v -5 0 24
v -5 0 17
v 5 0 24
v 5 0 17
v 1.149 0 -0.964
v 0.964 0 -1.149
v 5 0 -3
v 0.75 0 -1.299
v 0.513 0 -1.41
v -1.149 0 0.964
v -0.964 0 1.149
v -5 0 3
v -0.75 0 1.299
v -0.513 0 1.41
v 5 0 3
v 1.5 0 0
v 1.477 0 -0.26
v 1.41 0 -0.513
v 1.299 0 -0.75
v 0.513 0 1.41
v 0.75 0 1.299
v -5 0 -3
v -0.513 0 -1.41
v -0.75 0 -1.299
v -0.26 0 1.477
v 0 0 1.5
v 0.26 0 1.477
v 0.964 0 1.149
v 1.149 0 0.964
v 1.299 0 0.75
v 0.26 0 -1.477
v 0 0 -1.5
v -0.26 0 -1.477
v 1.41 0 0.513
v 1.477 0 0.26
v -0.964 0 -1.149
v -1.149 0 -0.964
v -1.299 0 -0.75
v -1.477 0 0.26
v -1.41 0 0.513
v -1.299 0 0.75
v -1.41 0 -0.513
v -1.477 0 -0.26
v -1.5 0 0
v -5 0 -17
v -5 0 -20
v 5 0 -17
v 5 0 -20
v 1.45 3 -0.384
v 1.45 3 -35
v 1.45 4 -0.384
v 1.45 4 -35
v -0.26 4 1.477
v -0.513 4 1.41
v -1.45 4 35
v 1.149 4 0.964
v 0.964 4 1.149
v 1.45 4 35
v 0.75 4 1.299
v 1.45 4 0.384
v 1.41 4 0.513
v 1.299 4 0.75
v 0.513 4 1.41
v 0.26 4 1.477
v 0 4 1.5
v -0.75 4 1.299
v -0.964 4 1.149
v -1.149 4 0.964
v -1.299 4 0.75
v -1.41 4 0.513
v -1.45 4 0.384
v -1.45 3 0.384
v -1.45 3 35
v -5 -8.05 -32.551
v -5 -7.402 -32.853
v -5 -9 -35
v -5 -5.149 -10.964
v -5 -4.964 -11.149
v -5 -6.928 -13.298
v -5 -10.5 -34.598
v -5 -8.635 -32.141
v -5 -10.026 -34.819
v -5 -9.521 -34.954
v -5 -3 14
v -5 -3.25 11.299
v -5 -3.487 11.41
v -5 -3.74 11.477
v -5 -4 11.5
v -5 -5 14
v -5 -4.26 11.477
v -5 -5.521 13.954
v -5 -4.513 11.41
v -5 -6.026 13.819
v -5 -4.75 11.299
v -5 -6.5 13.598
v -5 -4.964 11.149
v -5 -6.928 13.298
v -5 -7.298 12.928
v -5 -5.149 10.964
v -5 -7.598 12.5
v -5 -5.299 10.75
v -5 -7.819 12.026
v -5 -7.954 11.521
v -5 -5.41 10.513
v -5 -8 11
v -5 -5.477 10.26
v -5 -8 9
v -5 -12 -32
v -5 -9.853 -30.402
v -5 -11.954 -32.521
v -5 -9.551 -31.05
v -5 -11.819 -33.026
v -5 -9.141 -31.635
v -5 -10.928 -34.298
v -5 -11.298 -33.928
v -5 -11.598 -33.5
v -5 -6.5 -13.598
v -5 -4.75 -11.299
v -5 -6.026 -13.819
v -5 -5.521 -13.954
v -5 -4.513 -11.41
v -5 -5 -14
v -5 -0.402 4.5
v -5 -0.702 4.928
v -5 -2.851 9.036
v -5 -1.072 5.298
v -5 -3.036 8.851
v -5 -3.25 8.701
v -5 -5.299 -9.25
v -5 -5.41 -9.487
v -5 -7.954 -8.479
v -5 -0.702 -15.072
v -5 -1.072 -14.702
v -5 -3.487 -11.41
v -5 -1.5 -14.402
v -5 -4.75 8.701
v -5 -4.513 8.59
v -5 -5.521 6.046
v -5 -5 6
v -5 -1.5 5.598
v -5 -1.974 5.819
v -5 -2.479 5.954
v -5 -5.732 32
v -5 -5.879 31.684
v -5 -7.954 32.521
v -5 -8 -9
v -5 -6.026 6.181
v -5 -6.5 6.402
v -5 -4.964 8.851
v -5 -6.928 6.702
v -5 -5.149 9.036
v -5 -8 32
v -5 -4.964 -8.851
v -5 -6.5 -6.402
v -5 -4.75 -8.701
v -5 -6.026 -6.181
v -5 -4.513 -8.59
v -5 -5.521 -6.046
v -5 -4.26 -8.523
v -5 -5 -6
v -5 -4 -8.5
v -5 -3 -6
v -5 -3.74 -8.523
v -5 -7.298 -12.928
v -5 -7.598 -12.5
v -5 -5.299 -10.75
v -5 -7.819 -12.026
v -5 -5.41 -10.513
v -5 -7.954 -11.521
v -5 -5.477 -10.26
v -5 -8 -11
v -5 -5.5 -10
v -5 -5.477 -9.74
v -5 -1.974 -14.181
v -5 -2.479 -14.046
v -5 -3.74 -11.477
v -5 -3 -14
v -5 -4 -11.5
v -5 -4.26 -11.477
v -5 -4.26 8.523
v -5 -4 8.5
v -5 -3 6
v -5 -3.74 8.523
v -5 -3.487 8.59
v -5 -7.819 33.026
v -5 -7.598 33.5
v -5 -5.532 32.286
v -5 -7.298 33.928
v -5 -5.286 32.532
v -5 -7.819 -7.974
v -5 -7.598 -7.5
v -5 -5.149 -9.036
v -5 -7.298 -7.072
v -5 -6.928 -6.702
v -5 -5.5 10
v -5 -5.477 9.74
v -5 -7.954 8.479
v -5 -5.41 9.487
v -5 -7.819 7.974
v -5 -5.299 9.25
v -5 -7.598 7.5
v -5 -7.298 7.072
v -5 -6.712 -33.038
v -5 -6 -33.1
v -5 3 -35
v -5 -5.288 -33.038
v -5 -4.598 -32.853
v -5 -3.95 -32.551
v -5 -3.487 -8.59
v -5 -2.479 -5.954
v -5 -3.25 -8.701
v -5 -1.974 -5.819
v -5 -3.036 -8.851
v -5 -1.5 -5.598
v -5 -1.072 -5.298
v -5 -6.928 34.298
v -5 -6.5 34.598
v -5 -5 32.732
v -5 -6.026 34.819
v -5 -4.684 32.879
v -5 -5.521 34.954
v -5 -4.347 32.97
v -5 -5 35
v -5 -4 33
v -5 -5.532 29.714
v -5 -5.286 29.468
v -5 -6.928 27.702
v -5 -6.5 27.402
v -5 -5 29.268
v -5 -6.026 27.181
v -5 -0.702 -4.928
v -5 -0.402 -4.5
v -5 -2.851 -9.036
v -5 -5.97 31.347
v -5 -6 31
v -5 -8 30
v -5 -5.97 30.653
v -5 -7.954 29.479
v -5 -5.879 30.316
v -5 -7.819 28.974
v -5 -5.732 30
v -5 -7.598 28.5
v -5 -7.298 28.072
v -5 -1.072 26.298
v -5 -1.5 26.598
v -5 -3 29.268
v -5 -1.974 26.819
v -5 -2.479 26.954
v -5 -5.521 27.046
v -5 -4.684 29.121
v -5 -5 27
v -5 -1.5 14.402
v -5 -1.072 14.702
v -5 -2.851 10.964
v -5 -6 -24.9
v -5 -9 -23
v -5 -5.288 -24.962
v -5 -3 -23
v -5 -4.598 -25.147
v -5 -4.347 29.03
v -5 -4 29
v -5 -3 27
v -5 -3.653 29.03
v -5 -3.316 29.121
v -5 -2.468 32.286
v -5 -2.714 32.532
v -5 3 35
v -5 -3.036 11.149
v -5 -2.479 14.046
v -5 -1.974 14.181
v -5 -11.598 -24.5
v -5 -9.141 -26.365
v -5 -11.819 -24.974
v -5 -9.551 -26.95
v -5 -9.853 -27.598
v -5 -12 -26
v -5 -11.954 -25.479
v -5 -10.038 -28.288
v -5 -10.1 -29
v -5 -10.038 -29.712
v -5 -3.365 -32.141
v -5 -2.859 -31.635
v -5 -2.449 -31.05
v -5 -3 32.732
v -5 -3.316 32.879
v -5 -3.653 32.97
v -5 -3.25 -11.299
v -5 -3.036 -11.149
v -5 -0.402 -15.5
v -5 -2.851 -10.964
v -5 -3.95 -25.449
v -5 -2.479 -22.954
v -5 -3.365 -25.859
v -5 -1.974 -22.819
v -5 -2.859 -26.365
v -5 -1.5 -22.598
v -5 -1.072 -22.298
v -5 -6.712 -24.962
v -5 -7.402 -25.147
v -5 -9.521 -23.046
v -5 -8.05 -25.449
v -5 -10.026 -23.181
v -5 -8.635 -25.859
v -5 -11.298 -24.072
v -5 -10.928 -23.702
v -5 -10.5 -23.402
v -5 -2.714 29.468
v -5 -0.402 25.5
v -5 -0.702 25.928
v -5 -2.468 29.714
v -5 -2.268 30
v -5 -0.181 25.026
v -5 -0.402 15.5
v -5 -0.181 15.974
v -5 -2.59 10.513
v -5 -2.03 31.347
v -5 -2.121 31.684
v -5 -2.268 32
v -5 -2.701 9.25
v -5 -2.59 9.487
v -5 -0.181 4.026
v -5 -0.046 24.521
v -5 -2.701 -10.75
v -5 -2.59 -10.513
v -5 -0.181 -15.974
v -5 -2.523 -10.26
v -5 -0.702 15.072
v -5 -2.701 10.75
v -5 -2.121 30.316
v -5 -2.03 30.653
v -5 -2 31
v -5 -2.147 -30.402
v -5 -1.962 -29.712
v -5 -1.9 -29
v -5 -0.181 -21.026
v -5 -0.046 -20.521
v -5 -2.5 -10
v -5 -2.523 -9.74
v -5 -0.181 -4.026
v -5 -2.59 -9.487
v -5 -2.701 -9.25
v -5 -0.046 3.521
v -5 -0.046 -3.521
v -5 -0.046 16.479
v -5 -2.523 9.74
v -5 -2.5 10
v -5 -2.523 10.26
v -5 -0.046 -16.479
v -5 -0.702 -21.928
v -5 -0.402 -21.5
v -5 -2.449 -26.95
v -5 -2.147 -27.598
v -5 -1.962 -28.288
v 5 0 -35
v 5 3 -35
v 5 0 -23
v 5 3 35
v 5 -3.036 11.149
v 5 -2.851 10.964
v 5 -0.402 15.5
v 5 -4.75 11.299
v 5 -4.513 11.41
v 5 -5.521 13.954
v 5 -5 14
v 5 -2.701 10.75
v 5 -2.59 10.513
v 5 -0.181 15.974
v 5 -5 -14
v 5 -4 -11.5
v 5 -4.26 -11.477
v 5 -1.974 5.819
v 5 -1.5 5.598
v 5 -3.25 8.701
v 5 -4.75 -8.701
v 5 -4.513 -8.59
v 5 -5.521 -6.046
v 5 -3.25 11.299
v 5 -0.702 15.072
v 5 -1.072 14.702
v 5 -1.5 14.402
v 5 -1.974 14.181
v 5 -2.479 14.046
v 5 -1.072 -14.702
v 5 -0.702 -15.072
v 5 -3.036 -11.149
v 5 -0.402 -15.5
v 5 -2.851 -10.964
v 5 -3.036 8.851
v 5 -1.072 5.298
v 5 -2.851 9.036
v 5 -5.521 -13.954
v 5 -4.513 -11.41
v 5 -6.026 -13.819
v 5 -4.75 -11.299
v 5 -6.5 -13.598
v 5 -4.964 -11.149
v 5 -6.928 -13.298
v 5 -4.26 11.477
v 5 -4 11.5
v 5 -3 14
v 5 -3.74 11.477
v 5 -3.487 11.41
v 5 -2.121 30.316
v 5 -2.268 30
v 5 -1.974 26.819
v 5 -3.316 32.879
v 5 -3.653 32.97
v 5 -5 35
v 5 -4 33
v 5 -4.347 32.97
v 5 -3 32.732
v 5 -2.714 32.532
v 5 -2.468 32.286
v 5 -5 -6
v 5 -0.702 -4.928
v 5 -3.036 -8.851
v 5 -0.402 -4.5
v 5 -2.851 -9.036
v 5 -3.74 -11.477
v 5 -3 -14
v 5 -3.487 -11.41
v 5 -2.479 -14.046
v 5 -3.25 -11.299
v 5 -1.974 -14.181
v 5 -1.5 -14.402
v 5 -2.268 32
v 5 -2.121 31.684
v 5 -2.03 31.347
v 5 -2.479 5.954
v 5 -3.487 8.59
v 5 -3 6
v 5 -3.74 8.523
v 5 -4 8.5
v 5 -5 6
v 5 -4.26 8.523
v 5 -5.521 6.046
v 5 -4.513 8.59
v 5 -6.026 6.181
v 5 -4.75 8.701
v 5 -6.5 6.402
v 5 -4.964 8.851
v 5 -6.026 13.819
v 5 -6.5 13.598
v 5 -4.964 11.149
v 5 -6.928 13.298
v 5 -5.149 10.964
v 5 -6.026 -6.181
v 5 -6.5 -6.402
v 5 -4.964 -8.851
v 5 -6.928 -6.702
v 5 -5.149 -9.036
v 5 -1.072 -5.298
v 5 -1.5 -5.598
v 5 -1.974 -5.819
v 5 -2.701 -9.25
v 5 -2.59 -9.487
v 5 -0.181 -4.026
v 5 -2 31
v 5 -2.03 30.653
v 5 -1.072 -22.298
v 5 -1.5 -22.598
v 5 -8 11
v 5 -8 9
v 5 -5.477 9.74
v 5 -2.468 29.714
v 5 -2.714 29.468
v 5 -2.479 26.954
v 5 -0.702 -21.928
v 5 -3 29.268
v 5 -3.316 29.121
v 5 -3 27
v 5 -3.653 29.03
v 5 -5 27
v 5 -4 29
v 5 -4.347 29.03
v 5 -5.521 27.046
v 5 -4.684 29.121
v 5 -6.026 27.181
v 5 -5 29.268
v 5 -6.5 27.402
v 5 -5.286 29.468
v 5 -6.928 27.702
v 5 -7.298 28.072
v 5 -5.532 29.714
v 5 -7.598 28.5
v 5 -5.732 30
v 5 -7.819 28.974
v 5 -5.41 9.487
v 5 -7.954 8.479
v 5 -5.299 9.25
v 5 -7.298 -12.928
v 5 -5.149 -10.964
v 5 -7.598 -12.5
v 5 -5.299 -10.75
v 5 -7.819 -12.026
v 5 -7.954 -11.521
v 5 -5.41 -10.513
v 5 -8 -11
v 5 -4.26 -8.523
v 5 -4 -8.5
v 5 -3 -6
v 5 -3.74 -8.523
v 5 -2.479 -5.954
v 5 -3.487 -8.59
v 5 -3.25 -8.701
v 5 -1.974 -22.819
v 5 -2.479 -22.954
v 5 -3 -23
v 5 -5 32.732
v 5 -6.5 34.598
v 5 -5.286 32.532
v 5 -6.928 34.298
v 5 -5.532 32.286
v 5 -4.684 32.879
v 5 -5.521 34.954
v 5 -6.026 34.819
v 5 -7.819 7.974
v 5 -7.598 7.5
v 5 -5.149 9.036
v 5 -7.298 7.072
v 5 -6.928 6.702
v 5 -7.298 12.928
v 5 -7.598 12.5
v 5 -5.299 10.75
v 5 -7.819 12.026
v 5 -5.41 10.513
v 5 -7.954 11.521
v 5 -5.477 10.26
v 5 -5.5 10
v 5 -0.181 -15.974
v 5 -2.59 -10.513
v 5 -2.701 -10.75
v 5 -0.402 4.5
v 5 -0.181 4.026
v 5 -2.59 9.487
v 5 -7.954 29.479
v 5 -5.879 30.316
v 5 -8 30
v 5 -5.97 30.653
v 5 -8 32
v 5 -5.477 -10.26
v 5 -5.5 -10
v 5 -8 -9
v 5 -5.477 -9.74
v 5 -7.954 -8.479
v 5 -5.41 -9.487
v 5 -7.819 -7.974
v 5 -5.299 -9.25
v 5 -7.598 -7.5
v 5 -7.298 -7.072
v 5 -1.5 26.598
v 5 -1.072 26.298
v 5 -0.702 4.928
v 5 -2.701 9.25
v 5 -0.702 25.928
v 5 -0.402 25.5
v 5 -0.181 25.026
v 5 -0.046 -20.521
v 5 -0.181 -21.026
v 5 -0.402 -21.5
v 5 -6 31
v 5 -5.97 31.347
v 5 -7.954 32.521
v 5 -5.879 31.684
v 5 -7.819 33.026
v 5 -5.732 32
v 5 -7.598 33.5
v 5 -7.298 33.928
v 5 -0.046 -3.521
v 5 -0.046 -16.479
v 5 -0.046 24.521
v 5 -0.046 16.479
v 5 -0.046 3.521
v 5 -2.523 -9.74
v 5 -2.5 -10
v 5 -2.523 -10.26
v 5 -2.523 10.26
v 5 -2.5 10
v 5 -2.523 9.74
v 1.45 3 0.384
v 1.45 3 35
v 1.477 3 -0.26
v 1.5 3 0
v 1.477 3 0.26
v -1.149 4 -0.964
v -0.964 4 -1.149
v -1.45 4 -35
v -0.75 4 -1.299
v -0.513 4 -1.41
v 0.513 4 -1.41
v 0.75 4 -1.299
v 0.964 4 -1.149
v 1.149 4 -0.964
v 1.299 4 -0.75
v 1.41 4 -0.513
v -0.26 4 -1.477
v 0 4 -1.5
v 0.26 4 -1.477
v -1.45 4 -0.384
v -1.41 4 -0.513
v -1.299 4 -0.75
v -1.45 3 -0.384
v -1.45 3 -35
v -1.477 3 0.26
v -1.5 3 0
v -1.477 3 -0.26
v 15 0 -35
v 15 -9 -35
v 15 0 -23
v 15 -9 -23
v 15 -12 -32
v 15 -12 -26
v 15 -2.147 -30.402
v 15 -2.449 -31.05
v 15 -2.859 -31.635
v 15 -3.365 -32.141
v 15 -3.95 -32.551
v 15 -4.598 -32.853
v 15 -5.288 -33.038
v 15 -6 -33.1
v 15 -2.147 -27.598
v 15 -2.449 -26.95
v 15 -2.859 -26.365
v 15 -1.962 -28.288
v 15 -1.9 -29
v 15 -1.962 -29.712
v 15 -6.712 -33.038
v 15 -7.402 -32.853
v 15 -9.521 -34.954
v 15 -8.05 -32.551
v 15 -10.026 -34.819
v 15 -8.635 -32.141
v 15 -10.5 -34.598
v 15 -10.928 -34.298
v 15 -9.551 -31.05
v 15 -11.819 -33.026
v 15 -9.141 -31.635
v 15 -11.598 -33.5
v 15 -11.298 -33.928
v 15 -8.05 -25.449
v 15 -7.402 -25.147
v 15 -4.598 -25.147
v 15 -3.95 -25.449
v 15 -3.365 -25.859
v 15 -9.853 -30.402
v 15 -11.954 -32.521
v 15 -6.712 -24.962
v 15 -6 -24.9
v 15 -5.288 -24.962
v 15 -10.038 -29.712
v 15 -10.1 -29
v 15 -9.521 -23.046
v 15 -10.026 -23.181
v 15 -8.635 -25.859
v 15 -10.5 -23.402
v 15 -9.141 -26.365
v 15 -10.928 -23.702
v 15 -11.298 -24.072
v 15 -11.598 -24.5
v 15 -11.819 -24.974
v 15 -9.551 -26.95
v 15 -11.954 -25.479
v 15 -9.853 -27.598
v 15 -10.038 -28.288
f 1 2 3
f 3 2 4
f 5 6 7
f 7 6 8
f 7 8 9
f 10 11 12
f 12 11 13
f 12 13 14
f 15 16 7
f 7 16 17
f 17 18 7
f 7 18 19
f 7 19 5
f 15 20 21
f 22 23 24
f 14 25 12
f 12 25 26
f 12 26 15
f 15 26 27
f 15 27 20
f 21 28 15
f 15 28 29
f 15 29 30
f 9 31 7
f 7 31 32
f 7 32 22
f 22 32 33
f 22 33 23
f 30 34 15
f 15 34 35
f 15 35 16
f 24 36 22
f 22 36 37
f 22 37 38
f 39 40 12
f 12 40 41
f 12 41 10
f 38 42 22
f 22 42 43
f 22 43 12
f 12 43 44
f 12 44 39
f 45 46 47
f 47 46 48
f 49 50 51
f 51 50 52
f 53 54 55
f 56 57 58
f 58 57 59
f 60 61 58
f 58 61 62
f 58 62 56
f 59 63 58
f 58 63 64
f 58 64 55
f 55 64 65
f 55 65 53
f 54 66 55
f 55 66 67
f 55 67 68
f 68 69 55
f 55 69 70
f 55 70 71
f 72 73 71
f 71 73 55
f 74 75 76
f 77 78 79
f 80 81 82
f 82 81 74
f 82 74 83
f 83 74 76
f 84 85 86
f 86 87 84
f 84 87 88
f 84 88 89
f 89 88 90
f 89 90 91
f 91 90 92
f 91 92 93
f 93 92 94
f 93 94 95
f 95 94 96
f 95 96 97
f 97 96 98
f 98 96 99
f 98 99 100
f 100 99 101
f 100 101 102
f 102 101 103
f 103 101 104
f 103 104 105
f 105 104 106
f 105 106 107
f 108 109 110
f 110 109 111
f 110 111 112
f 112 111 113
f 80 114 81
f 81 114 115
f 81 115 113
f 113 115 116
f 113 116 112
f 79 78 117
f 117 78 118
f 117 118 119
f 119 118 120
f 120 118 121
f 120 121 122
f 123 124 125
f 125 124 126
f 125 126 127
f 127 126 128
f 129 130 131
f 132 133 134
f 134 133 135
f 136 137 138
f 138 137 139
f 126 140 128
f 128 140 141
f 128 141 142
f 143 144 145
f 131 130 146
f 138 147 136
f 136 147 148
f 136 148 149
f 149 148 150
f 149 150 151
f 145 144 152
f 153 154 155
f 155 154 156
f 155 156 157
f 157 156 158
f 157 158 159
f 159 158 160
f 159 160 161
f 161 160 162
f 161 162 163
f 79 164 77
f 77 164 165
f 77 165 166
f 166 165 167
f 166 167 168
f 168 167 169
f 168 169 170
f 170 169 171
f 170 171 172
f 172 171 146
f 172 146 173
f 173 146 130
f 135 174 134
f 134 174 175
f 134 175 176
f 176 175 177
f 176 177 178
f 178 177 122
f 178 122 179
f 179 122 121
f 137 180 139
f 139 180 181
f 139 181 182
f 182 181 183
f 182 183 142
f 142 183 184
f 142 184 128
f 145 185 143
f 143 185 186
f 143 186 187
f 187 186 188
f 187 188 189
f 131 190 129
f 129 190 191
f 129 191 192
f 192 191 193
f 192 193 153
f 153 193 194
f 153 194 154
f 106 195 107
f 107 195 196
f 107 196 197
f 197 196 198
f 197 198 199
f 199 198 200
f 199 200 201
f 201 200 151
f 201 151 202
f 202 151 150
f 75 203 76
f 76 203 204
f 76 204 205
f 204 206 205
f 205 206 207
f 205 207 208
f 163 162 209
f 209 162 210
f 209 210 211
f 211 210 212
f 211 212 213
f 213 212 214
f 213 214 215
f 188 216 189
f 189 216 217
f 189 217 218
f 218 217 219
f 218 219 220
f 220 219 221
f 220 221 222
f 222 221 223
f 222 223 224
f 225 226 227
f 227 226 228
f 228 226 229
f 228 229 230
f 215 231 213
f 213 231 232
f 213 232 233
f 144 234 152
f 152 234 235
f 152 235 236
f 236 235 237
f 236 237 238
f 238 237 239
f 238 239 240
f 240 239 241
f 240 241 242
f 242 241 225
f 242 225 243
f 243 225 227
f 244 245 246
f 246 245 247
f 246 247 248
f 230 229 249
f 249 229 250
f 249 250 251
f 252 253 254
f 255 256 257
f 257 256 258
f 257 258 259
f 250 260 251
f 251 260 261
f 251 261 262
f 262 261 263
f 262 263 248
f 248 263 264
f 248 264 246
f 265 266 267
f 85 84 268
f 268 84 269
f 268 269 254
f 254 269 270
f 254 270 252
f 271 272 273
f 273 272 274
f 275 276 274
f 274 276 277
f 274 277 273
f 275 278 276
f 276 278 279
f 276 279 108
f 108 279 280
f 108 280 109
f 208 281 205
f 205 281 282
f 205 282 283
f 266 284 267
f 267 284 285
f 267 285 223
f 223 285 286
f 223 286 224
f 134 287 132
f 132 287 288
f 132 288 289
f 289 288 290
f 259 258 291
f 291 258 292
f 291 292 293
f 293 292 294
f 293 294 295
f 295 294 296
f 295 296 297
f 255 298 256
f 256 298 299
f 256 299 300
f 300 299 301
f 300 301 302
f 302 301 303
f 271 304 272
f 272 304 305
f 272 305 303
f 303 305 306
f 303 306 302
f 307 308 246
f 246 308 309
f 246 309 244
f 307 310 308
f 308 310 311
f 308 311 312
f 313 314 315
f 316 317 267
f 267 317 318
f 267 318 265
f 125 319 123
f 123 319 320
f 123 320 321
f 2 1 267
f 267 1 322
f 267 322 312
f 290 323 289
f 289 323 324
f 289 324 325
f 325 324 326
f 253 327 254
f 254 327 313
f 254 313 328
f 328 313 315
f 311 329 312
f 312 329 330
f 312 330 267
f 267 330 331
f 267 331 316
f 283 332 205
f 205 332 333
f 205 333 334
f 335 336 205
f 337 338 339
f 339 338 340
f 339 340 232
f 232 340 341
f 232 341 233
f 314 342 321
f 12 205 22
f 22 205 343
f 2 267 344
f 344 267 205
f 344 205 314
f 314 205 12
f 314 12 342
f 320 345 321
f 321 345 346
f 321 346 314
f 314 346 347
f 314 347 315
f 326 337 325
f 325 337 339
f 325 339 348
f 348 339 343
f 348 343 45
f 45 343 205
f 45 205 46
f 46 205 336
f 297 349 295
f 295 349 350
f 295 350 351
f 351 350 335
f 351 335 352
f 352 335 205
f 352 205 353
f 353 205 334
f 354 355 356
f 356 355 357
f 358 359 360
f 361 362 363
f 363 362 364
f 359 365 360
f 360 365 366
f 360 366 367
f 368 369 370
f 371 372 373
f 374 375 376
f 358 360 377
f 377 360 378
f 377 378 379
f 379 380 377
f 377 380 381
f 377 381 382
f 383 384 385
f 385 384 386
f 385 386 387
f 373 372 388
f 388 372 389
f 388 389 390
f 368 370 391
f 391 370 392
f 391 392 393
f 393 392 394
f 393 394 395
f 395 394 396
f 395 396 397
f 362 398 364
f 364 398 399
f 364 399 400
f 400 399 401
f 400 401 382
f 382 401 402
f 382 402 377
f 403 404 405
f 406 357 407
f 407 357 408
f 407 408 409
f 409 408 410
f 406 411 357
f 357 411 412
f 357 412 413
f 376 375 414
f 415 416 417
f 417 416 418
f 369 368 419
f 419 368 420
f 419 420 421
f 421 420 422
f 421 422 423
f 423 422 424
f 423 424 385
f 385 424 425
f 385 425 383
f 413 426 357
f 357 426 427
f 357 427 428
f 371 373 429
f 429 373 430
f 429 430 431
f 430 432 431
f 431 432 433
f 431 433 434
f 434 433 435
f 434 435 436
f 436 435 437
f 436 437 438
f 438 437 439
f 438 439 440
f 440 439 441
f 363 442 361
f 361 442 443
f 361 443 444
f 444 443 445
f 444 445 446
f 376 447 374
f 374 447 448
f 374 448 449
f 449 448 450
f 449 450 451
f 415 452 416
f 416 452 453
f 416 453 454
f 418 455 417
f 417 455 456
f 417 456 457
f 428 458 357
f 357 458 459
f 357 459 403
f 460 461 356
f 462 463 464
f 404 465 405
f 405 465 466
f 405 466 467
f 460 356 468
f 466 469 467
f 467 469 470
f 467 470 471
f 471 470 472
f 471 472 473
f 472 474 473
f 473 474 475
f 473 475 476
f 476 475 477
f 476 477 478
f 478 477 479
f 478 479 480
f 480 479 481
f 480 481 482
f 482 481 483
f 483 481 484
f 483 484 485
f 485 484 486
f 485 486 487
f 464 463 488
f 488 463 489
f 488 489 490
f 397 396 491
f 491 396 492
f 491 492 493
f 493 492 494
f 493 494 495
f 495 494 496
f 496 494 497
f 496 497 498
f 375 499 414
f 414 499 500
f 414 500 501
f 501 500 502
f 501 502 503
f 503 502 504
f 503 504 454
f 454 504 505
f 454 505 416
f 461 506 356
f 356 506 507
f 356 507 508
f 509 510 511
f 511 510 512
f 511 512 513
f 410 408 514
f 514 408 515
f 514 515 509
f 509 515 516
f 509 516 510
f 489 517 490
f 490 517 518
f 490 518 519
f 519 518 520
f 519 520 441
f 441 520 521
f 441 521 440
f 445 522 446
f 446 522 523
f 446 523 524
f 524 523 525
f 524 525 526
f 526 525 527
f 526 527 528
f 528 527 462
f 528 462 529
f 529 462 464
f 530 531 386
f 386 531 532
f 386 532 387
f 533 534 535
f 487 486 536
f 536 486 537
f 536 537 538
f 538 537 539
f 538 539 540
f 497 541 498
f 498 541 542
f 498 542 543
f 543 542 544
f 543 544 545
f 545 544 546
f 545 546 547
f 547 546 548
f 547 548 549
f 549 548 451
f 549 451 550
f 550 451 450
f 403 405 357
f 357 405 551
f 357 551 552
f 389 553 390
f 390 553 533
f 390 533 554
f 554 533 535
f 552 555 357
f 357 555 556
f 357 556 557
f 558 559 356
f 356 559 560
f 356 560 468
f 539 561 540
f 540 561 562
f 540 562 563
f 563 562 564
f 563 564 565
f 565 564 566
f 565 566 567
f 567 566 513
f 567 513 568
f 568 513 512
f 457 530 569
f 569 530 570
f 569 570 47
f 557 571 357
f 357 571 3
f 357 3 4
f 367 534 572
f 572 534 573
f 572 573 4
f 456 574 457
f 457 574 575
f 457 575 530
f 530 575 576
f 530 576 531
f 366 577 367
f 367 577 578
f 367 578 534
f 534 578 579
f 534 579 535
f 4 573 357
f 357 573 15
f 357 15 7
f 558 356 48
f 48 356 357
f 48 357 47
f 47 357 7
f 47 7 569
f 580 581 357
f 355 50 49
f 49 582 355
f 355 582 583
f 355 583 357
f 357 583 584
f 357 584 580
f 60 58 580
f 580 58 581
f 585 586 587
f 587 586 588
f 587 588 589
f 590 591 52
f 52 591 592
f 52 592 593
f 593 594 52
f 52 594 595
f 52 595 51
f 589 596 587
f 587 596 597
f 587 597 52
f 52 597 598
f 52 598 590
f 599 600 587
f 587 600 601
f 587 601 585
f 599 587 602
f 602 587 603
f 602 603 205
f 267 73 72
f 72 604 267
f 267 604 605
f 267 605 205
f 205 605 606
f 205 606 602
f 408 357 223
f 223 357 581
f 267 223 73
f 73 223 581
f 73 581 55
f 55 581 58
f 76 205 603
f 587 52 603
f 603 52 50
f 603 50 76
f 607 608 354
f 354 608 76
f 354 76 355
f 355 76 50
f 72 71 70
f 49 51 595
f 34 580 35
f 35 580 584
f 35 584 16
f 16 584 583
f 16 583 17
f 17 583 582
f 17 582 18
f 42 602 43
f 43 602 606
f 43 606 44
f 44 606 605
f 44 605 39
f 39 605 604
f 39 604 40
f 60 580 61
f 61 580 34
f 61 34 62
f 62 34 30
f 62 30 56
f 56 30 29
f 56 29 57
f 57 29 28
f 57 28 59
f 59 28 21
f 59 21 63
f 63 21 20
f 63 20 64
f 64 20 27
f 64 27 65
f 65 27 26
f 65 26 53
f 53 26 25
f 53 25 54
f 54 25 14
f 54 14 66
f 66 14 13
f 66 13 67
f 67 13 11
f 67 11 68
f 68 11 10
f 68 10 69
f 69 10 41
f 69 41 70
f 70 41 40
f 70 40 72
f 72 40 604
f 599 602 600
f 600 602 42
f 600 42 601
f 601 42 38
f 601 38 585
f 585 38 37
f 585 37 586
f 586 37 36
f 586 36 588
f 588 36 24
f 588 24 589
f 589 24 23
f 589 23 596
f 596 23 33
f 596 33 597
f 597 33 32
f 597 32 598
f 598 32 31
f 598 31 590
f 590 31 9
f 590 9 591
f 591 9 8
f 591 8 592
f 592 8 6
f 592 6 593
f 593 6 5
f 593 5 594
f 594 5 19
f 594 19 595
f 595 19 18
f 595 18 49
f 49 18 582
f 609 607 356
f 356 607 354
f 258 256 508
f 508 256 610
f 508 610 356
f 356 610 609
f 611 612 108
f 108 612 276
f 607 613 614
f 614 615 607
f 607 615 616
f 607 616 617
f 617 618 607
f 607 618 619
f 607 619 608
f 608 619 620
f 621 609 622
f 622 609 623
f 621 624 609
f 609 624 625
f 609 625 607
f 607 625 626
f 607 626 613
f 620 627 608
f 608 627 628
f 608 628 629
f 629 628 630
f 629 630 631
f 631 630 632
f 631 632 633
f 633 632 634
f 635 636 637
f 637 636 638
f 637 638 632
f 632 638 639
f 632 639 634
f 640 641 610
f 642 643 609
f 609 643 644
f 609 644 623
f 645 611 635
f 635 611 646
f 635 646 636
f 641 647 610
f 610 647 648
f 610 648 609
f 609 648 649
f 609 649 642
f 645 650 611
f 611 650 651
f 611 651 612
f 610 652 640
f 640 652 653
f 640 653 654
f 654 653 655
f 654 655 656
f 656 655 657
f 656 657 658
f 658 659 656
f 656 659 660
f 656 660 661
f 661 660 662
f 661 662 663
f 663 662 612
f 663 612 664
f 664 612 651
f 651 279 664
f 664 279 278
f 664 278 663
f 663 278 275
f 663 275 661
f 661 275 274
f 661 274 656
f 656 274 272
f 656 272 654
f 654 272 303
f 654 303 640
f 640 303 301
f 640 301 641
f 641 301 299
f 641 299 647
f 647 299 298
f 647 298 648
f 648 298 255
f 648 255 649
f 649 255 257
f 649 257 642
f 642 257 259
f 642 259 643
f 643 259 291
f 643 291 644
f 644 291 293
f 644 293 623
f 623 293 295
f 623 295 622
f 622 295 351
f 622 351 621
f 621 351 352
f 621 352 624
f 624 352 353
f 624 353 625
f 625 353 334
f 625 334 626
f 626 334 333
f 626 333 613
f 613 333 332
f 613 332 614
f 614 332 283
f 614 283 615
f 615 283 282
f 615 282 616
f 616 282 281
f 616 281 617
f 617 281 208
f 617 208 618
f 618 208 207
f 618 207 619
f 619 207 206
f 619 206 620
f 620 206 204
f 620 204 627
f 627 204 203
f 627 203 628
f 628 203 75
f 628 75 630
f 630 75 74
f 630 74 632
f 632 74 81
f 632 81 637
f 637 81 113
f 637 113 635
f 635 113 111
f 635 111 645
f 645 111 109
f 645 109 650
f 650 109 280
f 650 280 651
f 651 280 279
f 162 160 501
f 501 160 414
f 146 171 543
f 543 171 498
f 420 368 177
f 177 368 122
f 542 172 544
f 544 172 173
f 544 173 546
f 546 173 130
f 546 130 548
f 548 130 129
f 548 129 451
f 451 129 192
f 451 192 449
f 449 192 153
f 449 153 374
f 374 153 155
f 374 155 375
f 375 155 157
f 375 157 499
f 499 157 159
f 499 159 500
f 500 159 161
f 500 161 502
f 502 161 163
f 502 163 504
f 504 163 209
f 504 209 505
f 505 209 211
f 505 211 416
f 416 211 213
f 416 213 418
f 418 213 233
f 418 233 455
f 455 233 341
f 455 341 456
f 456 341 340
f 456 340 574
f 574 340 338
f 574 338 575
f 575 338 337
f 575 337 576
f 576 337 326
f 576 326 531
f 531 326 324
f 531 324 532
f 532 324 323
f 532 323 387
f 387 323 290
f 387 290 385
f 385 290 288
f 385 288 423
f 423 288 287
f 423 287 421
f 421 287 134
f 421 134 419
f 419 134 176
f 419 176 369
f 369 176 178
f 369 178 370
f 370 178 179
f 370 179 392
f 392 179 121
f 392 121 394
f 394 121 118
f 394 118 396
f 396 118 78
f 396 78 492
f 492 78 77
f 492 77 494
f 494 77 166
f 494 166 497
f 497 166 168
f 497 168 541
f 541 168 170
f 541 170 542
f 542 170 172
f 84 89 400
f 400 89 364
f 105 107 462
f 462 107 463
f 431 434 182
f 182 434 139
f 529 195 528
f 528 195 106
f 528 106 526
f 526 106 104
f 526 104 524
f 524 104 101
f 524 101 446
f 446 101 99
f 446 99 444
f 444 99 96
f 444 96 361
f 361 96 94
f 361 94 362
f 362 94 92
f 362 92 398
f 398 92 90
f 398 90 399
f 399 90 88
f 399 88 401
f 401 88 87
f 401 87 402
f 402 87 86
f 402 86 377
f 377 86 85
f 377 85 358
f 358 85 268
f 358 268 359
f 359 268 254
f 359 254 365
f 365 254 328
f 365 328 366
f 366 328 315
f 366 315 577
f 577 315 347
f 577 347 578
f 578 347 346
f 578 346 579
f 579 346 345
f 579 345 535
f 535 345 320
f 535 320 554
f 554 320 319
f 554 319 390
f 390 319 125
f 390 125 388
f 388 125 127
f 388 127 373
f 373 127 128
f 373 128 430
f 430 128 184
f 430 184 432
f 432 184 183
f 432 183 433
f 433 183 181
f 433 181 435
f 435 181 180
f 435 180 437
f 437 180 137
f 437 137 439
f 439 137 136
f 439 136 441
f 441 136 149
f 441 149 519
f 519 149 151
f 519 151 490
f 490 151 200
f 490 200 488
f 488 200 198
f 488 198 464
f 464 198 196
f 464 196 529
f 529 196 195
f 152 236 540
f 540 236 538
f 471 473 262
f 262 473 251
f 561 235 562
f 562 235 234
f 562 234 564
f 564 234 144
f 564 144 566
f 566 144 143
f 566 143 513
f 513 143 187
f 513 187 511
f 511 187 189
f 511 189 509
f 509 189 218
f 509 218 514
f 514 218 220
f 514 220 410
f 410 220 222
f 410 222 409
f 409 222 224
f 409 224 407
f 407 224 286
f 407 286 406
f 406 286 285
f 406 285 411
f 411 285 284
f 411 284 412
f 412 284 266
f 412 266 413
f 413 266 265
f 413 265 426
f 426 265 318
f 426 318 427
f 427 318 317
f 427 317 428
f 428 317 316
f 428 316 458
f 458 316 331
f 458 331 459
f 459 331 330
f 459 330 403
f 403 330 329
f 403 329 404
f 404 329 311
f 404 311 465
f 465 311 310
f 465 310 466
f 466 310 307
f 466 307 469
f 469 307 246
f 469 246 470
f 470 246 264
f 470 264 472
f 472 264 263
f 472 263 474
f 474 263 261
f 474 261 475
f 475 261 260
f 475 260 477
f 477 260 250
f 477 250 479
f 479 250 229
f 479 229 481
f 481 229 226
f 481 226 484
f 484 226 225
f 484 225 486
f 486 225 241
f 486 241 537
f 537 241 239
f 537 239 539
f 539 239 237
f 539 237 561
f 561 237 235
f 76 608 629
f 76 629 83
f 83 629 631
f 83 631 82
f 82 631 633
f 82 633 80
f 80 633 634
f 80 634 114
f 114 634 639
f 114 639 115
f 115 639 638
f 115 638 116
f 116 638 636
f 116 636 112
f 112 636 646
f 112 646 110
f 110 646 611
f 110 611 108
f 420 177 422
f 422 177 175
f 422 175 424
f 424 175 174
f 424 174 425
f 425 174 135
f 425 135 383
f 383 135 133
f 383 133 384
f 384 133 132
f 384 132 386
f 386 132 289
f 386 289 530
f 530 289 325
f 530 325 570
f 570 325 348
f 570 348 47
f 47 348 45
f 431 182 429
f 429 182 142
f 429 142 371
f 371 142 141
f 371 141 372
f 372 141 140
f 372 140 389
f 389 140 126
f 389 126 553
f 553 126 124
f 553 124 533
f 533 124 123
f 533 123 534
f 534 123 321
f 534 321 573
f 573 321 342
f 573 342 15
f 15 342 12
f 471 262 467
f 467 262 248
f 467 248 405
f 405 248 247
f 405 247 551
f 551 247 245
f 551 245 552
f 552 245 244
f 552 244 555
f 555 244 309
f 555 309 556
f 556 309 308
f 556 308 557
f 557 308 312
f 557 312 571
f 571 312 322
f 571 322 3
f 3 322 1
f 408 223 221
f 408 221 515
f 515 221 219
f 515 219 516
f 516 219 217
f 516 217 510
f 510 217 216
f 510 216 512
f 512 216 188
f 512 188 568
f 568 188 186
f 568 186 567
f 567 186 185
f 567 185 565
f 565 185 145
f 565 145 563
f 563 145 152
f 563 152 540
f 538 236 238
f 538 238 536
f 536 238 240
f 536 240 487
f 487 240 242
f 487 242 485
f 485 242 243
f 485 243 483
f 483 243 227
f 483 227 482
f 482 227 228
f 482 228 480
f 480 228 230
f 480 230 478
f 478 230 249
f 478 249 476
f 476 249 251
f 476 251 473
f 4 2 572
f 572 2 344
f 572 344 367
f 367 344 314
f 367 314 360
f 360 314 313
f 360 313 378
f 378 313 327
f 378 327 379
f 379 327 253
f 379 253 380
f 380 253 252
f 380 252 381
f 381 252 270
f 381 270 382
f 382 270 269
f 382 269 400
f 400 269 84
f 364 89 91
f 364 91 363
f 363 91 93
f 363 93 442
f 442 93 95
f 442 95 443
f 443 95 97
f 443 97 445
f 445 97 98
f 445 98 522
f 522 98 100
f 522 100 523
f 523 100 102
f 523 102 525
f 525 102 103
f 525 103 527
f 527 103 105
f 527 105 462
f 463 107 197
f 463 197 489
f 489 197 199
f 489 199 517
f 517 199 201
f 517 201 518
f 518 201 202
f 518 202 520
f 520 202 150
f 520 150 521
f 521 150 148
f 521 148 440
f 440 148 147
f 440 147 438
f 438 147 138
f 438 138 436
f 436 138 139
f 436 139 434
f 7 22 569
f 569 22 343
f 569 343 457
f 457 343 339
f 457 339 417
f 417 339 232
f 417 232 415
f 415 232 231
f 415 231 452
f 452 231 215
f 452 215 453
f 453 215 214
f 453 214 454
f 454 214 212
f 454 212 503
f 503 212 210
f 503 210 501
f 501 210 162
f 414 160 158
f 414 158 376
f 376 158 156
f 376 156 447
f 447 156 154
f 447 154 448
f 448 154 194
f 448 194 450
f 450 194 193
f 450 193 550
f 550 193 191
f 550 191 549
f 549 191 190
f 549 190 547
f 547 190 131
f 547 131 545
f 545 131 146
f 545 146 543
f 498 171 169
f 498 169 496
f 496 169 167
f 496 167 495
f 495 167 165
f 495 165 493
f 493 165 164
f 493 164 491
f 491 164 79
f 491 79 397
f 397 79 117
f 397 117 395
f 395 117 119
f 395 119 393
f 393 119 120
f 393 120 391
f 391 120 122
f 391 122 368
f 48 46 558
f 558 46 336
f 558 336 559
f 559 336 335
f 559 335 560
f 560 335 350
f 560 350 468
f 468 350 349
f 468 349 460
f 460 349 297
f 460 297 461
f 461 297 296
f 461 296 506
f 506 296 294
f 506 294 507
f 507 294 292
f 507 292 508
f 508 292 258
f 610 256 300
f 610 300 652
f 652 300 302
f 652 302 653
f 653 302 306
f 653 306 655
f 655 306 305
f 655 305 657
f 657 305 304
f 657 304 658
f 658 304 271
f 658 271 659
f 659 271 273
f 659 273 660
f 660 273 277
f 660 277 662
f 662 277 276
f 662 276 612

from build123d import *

# Parameters (mm, degrees)
MAKERBEAMFIX_DEPTH                      = 35
SKETCH2_R                               = 1.5
MAKERBEAMFIXHOLE_DEPTH                  = 5
SKETCH3_W                               = 12
SKETCH3_H                               = 12
SKETCH3_R                               = 4.1
MAKERBEAMTOOLBIGHEXASCREWDRIVER_DEPTH   = 20
SKETCH4_W                               = 8
SKETCH4_H                               = 8
SKETCH4_R                               = 1.5
MAKERBEAMTOOLSMALLHEXASCREWDRIVER_DEPTH = 10
SIMPLESCREWDRIVER3MM_COUNT              = 2
SIMPLESCREWDRIVER3MM_PITCH              = 20
SKETCH5_W                               = 8
SKETCH5_H                               = 8
SKETCH5_R                               = 2
BOSS_EXTRUDE4_DEPTH                     = 10
FILLET1_R                               = 3


with BuildPart() as part:
    # Sketch1 → MakerBeamFix (new body, symmetric)
    with BuildSketch(Plane.XY):
        Polygon((-5, 0), (5, 0), (5, 3), (1.45, 3), (1.45, 4), (-1.45, 4), (-1.45, 3), (-5, 3), align=None)
    extrude(amount=MAKERBEAMFIX_DEPTH, both=True)

    # Sketch2 → MakerBeamFixHole (cut, through all)
    with BuildSketch(Plane(origin=(0, 0, 0), x_dir=(-1, 0, 0), z_dir=(0, -1, 0))):
        Circle(SKETCH2_R)
    extrude(amount=-MAKERBEAMFIXHOLE_DEPTH, mode=Mode.SUBTRACT)

    # Sketch3 → MakerBeamToolBigHexaScrewDriver (add)
    with BuildSketch(Plane.ZY.offset(5)):
        with Locations((-29, -6)):
            Rectangle(SKETCH3_W, SKETCH3_H)
        with Locations((-29, -6)):
            Circle(SKETCH3_R, mode=Mode.SUBTRACT)
    extrude(amount=-MAKERBEAMTOOLBIGHEXASCREWDRIVER_DEPTH)

    # Sketch4 → MakerBeamToolSmallHexaScrewDriver (add)
    with BuildSketch(Plane.ZY.offset(5)):
        with Locations((-10, -4)):
            Rectangle(SKETCH4_W, SKETCH4_H)
        with Locations((-10, -4)):
            Circle(SKETCH4_R, mode=Mode.SUBTRACT)
    makerbeamtoolsmallhexascrewdriver = extrude(amount=-MAKERBEAMTOOLSMALLHEXASCREWDRIVER_DEPTH)

    # SimpleScrewDriver3mm: MakerBeamToolSmallHexaScrewDriver ×2
    with Locations(*[(0, 0, i * SIMPLESCREWDRIVER3MM_PITCH) for i in range(1, SIMPLESCREWDRIVER3MM_COUNT)]):
        add(makerbeamtoolsmallhexascrewdriver)

    # Sketch5 → Boss-Extrude4 (add)
    with BuildSketch(Plane.ZY.offset(5)):
        with Locations((31, -4)):
            Rectangle(SKETCH5_W, SKETCH5_H)
        with Locations((31, -4)):
            Circle(SKETCH5_R, mode=Mode.SUBTRACT)
    extrude(amount=-BOSS_EXTRUDE4_DEPTH)

    # Fillet1
    fillet1_edges = [part.edges().sort_by_distance(p)[0] for p in [
        (0, 0, -23),
        (5, -12, -35),
        (5, -12, -23),
        (0, 0, -6),
        (0, -8, -6),
        (0, -8, -14),
        (0, 0, -14),
        (0, 0, 14),
        (0, -8, 14),
        (0, -8, 6),
        (0, 0, 6),
        (0, -8, 35),
        (0, -8, 27),
        (0, 0, 27),
    ]]
    fillet(fillet1_edges, radius=FILLET1_R)


solid = part.part
